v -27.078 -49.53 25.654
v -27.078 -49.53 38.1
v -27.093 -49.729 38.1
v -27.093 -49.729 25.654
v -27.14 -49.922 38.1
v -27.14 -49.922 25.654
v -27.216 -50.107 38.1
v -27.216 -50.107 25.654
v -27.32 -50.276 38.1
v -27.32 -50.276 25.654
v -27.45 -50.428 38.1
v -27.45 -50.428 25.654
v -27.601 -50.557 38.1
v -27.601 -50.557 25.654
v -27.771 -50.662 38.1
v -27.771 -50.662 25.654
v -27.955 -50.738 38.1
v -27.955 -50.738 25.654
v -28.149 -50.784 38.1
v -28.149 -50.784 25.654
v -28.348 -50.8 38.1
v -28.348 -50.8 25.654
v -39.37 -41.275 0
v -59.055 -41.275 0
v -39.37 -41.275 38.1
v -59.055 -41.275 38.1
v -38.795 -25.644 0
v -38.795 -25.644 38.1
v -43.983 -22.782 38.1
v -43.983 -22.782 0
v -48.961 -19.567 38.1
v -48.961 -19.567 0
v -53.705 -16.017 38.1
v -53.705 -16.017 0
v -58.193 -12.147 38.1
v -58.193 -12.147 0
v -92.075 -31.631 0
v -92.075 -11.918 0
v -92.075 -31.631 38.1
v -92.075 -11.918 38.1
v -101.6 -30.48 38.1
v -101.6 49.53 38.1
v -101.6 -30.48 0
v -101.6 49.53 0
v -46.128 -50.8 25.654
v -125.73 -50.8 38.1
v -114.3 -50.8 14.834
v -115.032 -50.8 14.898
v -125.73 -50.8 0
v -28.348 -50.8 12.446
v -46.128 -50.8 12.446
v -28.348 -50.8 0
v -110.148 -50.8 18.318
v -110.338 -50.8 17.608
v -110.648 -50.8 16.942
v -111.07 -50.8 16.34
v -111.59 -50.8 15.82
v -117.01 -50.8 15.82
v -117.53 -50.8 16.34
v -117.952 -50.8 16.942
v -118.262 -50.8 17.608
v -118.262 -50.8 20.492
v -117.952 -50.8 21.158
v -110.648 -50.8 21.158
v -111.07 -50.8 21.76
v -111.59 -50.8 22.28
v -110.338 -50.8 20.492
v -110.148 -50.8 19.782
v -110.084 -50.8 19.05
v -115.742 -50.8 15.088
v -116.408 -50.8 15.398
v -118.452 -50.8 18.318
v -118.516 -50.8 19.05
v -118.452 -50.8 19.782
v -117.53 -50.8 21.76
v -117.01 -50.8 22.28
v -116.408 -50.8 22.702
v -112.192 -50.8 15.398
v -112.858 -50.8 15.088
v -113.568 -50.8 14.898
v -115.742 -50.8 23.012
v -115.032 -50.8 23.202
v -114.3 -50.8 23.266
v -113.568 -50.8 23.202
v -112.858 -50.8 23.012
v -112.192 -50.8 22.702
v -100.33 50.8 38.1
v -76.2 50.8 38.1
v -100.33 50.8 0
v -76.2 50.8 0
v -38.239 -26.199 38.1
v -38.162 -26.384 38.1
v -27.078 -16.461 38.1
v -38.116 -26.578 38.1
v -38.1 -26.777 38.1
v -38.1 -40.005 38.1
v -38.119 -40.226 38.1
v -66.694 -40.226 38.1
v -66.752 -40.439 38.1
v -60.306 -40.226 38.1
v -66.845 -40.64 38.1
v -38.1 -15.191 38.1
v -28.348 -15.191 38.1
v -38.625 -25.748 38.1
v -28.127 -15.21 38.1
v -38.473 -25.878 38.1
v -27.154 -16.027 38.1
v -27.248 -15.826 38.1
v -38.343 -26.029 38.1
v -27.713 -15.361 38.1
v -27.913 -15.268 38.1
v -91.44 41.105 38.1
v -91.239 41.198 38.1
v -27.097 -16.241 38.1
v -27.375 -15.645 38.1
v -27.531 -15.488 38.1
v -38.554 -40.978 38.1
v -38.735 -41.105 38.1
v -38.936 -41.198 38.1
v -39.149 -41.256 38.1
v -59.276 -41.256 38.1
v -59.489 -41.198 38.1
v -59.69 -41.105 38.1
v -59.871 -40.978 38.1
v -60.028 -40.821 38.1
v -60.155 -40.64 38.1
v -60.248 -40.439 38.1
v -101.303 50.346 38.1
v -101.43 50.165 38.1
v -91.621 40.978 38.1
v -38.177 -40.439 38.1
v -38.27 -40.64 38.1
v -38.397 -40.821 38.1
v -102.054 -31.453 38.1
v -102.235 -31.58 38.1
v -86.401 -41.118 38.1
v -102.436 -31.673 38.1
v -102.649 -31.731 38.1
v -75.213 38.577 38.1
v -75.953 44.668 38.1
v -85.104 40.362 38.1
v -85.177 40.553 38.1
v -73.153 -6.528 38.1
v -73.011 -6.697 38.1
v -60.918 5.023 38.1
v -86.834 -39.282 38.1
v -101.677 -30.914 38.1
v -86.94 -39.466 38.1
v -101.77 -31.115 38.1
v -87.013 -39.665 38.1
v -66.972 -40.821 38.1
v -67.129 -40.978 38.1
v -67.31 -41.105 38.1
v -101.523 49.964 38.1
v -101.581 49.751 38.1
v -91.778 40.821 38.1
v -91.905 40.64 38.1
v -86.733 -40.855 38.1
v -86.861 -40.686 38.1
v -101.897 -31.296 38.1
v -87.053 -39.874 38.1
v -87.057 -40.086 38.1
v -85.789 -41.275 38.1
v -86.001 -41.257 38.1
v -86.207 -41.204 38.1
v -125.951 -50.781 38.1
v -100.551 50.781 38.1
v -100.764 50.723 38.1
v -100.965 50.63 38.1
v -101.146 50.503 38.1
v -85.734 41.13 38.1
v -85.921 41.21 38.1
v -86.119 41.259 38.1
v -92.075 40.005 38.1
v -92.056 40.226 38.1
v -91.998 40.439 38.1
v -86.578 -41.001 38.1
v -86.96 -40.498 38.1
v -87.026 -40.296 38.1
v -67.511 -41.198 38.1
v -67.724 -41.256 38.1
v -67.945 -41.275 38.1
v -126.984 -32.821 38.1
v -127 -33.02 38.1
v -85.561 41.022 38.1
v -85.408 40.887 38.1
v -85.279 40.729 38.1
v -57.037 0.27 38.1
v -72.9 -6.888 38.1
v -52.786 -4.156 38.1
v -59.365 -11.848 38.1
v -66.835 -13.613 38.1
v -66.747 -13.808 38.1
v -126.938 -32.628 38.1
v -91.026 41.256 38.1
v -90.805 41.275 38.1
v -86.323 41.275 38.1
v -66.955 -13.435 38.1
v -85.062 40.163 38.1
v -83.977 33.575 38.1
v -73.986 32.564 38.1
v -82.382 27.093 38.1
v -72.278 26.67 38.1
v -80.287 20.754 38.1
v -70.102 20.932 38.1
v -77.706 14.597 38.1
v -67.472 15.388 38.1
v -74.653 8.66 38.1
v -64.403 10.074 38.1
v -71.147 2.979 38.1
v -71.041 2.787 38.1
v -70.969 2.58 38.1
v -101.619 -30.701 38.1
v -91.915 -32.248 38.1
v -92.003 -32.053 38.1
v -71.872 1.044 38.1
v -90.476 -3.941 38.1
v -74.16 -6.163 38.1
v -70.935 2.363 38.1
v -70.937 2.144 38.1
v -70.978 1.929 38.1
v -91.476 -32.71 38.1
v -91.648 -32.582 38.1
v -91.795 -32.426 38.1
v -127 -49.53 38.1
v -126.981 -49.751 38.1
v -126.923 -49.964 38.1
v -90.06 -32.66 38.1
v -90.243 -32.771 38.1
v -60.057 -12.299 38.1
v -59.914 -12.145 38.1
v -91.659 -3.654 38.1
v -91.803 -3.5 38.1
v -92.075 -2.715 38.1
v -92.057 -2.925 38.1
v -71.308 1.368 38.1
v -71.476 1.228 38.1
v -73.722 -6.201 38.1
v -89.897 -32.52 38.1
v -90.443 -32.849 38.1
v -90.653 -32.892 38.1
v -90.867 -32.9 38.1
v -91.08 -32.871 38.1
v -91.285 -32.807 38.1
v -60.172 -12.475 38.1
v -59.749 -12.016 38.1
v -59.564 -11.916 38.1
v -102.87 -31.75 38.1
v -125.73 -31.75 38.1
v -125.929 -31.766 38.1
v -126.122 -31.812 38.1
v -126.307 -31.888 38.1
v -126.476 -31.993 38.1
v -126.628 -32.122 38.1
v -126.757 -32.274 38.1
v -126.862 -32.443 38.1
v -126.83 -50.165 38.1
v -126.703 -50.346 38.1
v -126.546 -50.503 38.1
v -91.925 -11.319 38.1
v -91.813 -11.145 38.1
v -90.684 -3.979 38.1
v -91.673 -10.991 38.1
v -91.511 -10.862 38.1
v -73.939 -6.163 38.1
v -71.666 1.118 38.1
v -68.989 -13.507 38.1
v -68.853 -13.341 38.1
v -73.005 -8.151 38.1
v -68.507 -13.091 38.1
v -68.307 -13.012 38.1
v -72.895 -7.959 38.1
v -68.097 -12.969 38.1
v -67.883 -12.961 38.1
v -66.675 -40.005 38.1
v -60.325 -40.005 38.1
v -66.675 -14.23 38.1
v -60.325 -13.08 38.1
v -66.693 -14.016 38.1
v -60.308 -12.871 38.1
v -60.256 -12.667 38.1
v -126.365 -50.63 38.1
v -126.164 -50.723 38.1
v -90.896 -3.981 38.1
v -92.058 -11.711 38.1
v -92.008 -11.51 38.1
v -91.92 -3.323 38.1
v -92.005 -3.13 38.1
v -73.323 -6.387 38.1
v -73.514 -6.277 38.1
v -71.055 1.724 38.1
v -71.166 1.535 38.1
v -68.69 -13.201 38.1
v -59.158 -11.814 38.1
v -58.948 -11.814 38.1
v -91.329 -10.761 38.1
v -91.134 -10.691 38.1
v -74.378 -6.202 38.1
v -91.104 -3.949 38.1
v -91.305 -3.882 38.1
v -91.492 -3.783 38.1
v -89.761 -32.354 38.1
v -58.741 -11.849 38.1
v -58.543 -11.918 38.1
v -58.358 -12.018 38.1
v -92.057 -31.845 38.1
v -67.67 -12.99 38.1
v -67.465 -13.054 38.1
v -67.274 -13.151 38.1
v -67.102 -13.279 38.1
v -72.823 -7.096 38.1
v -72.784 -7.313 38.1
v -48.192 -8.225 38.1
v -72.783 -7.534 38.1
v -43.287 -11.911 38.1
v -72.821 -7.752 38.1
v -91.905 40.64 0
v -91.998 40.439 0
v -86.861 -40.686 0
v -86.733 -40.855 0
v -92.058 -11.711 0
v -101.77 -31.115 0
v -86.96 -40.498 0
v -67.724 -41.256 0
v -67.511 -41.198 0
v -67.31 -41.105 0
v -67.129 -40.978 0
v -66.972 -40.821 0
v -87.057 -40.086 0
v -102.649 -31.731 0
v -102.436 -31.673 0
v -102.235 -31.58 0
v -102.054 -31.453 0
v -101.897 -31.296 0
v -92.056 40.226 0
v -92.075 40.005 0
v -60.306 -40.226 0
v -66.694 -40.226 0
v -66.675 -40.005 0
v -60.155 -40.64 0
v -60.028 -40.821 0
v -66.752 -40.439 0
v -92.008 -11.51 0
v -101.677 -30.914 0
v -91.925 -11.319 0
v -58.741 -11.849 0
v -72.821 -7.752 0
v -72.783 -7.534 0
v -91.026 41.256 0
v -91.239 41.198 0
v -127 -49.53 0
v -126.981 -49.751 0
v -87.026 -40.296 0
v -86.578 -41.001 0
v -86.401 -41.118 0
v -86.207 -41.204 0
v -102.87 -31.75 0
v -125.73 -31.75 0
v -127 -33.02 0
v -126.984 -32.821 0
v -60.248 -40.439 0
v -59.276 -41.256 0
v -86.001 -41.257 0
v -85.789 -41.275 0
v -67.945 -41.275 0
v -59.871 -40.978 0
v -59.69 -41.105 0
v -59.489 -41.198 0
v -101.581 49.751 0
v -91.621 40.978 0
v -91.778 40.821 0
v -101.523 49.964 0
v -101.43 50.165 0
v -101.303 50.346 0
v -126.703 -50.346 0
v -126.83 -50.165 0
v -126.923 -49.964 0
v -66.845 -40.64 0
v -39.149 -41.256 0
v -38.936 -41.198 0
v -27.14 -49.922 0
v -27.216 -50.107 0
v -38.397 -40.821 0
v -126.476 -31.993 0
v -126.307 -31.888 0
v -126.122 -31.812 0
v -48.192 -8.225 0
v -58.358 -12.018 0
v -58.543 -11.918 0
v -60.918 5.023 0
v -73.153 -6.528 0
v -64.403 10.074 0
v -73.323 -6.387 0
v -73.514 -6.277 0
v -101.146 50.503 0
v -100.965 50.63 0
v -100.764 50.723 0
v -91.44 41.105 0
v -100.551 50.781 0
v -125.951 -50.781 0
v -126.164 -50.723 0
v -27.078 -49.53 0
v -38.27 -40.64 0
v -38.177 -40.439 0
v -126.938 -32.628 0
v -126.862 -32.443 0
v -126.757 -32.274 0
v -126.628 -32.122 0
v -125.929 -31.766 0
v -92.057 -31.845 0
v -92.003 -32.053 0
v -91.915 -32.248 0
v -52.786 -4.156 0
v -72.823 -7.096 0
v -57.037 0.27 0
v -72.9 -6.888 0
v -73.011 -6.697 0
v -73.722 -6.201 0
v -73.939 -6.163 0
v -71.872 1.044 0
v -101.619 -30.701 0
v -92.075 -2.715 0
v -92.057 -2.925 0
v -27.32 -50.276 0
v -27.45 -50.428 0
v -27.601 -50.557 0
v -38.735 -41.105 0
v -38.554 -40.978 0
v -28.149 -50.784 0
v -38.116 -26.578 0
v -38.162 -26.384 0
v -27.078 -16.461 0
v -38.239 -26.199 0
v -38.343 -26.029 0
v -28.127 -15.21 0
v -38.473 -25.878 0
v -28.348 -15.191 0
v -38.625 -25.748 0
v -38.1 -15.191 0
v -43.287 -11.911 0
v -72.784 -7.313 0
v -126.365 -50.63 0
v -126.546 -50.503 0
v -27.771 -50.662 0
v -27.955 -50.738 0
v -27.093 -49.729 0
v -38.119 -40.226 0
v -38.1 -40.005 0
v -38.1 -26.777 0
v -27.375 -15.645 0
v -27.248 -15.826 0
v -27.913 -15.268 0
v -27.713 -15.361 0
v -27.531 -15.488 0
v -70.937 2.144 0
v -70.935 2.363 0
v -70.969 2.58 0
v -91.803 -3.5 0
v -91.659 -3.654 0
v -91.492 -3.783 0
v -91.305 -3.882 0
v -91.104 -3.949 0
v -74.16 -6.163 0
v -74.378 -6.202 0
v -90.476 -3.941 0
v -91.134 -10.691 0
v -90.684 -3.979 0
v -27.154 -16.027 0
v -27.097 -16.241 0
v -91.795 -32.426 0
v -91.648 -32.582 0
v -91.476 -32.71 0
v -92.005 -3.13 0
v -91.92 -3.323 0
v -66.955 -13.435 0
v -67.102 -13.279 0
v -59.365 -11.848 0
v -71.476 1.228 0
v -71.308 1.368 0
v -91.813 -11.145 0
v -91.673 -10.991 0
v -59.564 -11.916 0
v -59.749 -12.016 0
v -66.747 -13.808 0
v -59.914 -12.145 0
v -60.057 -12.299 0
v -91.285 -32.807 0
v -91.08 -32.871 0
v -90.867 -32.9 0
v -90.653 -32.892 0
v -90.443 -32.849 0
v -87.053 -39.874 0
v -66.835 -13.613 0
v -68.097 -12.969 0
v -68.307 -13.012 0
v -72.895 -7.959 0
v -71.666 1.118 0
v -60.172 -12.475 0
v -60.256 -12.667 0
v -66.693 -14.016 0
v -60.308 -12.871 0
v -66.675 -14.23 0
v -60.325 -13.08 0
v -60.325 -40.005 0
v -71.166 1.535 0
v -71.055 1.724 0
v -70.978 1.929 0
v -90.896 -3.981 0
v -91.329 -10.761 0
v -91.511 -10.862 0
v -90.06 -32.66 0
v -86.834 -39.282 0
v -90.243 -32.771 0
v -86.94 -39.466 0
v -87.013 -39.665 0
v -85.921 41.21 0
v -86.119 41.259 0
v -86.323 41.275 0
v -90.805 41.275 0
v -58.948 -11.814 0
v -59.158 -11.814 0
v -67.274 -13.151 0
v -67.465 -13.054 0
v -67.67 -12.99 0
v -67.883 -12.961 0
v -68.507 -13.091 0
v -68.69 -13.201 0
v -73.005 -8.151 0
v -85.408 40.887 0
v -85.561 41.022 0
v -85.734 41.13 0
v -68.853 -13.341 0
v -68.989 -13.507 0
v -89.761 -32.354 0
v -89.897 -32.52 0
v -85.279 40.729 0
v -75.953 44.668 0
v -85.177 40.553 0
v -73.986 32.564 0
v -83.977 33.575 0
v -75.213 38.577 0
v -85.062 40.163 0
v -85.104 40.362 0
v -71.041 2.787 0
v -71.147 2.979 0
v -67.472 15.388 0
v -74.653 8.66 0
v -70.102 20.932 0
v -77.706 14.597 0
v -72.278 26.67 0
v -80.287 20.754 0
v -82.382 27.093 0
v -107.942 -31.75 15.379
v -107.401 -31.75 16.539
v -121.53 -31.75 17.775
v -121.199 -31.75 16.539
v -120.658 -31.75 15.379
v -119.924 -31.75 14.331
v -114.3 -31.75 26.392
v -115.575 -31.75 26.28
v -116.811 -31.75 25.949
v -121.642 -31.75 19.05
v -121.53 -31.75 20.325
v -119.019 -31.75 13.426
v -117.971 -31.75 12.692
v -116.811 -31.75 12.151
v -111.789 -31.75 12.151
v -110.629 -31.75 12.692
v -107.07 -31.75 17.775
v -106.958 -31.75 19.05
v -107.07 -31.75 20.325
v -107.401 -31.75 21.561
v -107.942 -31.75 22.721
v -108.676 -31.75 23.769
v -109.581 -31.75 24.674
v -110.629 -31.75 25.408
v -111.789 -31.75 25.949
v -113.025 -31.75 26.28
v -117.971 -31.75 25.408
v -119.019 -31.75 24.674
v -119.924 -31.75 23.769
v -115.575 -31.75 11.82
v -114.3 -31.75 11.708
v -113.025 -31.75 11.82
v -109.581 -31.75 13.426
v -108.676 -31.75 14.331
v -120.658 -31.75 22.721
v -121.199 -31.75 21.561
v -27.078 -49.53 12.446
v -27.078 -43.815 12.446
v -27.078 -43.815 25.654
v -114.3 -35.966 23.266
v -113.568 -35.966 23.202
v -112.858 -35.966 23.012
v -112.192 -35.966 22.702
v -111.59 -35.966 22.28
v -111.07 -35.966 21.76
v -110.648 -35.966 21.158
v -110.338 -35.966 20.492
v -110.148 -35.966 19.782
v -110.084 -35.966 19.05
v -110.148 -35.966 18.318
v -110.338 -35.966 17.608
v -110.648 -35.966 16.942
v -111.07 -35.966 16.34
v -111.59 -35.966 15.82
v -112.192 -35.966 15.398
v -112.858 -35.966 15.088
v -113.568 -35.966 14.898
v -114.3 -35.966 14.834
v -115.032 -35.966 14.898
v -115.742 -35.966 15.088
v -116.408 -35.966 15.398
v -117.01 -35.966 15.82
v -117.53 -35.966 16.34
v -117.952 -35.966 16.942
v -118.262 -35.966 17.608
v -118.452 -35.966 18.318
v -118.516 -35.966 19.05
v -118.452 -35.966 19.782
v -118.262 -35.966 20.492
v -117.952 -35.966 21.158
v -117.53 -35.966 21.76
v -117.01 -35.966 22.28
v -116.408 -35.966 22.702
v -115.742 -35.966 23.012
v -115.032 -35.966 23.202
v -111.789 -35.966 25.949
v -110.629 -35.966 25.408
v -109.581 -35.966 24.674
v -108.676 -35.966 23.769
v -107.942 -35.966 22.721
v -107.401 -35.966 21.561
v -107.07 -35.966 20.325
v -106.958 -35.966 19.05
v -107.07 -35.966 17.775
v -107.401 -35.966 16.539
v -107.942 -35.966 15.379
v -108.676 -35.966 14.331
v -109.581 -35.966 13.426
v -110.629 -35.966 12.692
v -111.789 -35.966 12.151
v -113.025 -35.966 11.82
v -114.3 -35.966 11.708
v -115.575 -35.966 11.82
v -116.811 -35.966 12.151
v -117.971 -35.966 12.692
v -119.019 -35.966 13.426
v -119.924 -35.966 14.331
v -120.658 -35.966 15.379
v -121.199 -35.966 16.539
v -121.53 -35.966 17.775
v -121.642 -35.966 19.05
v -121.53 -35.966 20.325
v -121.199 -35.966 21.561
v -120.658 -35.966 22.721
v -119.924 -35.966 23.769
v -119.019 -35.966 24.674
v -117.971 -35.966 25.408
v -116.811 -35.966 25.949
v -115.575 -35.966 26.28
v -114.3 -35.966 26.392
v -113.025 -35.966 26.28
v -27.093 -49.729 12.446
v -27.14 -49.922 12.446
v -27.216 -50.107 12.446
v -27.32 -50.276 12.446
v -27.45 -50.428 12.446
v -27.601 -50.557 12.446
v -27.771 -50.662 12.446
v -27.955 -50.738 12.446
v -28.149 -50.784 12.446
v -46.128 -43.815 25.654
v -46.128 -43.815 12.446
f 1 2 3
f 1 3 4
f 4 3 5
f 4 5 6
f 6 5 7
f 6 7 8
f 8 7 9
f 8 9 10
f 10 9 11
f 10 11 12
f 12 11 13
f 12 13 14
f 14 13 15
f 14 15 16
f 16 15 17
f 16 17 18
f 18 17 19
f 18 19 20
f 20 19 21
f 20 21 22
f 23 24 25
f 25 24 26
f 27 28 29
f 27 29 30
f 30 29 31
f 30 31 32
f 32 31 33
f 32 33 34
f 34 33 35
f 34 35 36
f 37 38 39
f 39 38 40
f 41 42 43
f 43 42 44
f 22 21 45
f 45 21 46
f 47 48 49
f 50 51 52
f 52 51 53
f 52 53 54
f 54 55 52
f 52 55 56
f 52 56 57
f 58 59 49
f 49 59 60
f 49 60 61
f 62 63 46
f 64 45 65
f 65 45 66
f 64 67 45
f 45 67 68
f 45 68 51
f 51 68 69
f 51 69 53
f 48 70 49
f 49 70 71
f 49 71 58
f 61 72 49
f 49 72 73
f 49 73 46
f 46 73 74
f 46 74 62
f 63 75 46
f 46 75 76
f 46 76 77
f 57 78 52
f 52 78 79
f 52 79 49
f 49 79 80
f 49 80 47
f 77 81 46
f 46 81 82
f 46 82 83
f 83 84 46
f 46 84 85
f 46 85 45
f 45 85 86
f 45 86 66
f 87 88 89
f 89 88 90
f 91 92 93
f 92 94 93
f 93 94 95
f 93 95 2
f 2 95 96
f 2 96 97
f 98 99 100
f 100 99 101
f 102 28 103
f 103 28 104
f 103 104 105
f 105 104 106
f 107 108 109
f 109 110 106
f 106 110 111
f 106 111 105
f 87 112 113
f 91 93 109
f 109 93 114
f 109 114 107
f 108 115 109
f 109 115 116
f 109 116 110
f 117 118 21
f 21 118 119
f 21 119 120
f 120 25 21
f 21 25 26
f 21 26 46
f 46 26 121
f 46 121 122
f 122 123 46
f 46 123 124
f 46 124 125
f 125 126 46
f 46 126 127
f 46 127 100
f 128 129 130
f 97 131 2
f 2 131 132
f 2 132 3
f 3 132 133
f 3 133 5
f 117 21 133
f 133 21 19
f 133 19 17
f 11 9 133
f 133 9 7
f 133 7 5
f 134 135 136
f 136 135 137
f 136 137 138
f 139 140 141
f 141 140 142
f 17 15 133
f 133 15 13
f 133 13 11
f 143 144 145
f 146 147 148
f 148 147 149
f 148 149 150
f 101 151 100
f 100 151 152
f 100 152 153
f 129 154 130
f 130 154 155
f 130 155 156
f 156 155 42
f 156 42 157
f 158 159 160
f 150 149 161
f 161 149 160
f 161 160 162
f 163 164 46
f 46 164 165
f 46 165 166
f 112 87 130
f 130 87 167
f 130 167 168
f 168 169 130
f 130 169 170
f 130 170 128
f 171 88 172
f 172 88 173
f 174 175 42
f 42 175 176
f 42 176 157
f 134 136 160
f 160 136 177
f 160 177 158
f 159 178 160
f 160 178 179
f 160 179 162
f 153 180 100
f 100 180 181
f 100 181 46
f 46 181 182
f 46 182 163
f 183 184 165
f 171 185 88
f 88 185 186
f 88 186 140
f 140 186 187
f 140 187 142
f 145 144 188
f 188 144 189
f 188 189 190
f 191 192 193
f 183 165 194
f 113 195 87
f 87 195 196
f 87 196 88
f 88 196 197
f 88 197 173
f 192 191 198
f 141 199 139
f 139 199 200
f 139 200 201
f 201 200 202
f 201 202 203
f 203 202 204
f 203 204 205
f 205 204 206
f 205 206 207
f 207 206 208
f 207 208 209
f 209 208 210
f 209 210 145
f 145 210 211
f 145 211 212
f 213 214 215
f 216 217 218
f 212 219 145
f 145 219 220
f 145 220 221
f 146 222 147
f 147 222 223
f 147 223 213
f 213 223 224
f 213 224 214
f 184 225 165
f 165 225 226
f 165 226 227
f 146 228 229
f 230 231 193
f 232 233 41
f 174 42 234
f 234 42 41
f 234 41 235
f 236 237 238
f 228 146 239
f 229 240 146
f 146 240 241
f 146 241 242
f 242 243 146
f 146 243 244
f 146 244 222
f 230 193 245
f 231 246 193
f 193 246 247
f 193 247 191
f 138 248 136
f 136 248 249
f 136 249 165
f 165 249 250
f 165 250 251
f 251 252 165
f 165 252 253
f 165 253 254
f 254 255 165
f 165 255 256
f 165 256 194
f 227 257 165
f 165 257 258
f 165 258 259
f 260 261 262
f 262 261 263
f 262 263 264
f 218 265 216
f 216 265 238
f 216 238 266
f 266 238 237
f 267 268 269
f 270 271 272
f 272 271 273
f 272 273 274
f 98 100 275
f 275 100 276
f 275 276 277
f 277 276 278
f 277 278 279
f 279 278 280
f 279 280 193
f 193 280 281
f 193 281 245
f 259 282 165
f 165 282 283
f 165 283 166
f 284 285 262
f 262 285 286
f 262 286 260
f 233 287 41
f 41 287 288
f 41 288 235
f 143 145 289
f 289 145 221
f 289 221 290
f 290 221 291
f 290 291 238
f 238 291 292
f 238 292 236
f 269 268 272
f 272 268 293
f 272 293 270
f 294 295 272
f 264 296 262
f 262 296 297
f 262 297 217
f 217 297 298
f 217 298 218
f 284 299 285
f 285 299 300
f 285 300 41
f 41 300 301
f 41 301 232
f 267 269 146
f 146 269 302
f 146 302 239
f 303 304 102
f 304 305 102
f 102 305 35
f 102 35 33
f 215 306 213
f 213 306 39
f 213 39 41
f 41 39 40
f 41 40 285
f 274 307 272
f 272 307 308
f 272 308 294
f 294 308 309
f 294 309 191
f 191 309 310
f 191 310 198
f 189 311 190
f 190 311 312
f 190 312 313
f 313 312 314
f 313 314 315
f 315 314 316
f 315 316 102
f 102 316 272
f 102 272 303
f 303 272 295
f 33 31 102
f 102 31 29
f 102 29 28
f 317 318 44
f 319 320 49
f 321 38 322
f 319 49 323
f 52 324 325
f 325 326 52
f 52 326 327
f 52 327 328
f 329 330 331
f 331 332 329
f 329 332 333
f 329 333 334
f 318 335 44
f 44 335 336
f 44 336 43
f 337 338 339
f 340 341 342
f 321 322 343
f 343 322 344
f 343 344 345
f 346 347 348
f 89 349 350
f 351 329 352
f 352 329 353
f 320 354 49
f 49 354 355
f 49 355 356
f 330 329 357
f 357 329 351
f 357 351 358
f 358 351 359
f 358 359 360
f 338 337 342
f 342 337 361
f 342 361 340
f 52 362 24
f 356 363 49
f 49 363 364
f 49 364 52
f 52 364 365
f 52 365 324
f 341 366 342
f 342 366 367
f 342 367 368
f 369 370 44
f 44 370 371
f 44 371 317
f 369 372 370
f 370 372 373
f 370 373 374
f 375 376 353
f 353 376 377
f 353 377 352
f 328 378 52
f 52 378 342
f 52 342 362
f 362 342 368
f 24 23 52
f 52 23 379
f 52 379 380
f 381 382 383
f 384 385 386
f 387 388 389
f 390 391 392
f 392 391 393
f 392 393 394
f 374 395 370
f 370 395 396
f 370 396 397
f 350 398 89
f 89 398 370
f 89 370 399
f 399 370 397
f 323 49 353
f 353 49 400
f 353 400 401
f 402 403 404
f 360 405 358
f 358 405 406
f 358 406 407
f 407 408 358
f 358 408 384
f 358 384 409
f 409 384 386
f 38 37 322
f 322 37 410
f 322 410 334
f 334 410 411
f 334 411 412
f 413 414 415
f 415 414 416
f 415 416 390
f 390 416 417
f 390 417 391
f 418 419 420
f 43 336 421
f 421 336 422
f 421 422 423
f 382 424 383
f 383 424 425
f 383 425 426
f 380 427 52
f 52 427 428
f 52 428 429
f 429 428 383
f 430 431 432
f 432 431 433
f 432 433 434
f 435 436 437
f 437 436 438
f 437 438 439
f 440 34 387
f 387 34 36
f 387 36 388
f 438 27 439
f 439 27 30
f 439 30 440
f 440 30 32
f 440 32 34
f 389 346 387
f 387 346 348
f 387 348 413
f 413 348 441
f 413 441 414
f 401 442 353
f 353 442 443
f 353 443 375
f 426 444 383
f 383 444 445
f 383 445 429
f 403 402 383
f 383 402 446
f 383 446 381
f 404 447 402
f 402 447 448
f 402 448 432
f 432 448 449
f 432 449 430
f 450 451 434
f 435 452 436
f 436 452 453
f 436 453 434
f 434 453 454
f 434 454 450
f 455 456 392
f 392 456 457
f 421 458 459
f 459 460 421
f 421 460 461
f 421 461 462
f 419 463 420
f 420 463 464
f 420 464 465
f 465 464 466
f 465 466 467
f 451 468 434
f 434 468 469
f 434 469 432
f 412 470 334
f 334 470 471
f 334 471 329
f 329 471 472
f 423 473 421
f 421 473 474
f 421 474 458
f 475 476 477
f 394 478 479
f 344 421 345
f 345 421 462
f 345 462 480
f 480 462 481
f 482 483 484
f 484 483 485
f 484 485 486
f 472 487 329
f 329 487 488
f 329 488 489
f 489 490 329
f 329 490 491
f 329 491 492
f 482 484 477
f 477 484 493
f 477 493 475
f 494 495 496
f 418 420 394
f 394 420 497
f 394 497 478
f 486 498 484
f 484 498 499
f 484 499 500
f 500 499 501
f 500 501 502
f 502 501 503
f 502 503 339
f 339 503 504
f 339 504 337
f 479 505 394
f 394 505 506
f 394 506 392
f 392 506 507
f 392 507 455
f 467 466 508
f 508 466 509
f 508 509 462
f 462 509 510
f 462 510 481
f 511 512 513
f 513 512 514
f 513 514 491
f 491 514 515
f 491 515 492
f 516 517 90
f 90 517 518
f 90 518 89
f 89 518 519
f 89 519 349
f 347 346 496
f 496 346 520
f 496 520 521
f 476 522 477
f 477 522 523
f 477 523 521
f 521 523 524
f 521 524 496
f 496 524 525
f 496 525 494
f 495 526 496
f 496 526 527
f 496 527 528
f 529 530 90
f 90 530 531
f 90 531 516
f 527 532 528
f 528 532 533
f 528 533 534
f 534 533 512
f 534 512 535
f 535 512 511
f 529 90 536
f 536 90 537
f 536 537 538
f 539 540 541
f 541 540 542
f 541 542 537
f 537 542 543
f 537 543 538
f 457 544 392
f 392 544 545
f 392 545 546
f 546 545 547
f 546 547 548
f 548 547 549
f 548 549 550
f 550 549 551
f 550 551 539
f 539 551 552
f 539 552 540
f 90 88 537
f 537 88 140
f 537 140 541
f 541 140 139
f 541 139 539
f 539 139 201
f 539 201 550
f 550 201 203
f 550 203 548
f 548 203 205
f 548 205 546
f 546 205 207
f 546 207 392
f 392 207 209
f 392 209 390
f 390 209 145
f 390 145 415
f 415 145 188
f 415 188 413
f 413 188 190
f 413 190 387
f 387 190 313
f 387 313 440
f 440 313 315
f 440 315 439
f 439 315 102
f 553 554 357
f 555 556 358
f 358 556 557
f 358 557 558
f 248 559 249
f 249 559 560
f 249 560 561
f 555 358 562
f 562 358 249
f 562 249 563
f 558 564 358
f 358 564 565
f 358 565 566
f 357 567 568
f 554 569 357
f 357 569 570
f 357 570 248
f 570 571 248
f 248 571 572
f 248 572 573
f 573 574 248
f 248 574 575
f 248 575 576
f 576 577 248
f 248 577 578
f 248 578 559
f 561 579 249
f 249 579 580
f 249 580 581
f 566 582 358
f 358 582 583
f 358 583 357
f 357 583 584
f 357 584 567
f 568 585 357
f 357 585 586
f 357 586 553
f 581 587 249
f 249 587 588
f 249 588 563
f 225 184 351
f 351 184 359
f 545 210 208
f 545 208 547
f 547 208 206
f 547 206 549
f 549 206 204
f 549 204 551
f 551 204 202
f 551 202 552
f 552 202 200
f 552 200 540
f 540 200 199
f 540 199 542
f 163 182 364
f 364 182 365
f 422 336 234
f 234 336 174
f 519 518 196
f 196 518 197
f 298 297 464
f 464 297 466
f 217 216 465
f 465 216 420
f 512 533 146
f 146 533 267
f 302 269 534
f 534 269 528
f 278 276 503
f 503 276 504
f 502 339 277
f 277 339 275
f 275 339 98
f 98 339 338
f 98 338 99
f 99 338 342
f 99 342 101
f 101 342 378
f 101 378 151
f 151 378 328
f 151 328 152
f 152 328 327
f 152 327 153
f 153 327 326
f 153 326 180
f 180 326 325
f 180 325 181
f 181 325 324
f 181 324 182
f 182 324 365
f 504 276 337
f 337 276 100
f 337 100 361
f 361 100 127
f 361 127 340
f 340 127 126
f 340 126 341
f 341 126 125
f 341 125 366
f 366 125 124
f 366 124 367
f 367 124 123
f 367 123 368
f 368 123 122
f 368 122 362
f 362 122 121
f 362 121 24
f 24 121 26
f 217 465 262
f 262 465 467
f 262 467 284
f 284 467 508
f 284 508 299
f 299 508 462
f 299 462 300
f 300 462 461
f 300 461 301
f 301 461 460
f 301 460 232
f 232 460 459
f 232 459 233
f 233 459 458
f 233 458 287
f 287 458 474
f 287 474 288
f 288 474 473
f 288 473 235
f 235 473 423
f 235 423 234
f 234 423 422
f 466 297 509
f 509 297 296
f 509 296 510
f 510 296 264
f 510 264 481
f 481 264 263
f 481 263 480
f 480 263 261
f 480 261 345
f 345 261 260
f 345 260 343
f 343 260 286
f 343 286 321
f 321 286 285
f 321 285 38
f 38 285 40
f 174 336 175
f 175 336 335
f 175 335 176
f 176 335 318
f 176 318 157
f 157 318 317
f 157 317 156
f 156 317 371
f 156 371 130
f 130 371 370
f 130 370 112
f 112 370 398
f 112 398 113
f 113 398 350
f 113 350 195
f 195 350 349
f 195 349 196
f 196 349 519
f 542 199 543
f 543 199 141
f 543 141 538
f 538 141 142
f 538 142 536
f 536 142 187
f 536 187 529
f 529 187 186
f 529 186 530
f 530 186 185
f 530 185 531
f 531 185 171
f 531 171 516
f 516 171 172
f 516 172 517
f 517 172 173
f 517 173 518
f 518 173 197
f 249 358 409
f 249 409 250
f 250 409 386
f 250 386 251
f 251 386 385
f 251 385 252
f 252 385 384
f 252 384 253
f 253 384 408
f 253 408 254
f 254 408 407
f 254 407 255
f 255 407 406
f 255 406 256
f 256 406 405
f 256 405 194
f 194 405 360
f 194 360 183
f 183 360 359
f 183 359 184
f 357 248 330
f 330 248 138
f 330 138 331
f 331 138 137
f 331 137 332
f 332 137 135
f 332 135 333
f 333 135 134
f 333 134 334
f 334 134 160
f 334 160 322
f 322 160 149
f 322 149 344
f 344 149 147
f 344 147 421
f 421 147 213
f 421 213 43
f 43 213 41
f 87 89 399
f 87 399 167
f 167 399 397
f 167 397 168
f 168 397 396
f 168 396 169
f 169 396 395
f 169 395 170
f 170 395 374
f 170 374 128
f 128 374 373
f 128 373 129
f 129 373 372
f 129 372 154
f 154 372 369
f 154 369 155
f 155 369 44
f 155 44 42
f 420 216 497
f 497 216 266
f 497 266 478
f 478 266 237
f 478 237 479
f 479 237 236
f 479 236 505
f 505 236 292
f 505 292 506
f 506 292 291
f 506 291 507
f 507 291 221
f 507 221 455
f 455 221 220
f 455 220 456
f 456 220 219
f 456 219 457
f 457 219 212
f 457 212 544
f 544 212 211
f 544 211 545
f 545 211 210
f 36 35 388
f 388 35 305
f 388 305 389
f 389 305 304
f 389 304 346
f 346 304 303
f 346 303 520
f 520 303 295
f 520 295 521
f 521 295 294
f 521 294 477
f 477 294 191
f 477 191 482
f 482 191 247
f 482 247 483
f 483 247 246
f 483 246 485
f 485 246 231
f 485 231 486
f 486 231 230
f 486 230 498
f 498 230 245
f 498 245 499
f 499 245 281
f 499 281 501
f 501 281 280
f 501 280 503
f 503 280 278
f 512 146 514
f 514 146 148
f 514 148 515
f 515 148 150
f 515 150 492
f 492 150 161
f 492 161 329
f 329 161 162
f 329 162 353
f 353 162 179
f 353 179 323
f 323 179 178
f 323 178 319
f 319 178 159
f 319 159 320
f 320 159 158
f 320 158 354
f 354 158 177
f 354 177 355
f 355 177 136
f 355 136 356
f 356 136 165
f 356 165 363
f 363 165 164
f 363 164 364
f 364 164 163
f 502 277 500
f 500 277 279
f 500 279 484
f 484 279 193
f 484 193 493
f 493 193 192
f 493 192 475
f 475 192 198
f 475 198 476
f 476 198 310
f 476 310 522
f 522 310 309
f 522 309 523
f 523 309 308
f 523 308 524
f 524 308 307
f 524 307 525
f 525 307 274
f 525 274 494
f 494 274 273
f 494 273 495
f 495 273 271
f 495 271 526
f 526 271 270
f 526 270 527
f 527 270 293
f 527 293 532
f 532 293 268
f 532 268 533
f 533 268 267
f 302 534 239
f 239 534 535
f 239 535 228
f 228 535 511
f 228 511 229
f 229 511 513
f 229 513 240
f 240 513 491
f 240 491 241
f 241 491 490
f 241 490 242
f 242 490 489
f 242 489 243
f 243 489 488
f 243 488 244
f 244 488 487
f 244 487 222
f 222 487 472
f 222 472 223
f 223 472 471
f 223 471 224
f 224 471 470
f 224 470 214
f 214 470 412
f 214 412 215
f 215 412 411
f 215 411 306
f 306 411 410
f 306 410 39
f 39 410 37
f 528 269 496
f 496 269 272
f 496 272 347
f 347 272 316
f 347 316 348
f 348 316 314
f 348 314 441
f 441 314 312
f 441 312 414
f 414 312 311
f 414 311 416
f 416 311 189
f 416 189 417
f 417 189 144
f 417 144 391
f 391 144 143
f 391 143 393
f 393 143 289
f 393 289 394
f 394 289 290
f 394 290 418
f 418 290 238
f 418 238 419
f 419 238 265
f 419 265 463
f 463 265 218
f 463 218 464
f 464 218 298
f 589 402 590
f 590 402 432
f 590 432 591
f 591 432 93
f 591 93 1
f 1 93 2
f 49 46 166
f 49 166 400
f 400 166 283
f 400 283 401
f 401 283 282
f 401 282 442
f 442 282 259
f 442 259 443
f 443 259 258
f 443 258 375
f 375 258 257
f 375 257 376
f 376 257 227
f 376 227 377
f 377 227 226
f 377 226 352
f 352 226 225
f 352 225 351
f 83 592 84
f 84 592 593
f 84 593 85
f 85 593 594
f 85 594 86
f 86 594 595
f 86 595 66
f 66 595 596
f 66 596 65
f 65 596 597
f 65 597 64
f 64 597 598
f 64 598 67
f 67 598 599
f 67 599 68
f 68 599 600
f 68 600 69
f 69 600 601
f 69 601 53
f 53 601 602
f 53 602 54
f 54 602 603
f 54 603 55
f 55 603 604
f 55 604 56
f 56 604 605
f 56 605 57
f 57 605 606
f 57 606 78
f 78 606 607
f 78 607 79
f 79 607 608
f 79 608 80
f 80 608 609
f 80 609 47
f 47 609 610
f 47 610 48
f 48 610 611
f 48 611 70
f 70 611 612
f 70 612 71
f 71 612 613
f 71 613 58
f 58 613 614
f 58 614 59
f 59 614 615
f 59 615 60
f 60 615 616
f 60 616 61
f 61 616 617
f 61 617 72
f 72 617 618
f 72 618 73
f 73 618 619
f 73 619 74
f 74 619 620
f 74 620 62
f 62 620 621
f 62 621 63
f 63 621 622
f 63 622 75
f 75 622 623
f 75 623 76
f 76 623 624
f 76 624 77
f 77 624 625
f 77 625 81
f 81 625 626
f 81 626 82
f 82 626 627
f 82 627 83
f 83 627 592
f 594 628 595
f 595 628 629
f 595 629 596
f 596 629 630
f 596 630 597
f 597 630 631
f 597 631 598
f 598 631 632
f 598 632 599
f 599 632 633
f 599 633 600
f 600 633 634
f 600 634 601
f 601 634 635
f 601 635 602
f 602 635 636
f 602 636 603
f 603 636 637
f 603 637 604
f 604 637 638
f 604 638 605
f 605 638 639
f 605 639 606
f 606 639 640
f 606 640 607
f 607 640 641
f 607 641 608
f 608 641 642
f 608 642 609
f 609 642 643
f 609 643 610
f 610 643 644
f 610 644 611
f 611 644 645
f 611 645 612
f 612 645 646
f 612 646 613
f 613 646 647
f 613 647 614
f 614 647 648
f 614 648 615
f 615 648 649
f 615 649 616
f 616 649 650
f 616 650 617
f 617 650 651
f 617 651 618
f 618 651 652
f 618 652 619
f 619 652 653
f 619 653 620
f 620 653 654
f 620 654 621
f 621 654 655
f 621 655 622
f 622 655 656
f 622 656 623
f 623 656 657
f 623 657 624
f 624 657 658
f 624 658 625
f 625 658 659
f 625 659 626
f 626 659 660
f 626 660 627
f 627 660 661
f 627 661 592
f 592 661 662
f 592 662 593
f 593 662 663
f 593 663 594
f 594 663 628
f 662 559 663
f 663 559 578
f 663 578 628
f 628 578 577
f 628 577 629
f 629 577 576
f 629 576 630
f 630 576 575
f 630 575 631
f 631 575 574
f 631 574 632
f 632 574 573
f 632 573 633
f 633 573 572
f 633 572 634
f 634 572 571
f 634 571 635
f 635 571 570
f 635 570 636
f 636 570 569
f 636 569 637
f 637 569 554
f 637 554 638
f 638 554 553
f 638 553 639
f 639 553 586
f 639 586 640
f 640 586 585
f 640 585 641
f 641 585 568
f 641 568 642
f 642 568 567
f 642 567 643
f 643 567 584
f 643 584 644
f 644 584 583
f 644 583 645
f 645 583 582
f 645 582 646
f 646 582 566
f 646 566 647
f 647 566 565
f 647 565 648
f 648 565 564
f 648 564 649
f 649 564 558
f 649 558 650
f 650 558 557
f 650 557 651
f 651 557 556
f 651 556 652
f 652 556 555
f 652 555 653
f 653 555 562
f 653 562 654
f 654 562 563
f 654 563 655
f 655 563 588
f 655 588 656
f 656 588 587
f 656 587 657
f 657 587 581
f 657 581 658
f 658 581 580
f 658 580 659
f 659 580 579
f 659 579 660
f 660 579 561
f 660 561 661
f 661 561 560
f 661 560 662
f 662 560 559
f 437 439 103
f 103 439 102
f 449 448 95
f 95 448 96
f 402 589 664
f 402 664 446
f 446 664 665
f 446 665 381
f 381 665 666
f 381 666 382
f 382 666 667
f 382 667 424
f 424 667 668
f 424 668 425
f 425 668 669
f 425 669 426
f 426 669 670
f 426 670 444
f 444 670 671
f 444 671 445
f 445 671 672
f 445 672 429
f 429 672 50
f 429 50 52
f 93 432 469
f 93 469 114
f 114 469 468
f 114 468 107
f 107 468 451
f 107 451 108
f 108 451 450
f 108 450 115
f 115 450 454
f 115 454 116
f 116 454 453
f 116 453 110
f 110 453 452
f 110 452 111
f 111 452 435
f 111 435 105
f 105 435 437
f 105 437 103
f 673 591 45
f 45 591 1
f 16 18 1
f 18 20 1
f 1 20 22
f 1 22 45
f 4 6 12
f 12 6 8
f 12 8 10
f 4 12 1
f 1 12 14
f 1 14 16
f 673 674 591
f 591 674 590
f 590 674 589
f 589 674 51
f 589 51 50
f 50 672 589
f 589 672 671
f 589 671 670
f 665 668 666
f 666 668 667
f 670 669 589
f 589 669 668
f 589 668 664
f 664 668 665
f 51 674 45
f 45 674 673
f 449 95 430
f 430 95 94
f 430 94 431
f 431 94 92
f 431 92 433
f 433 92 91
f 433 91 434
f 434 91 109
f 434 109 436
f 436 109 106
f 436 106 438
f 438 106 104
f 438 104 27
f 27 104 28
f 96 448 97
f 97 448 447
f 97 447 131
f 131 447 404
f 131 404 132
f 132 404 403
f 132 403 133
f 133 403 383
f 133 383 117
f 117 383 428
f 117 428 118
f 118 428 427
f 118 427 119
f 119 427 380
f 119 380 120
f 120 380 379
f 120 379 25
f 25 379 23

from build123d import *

# Parameters (mm, degrees)
SKETCH1_W                                         = 203.2
SKETCH1_H                                         = 101.6
BOSS_EXTRUDE1_DEPTH                               = 38.1
SKETCH2_R                                         = 76.2
CUT_EXTRUDE1_DEPTH                                = 120.811560377
SKETCH3_W                                         = 38.1
SKETCH3_H                                         = 19.05
BOSS_EXTRUDE2_DEPTH                               = 25.4
CUT_EXTRUDE2_DEPTH                                = 142.990316571
BOSS_EXTRUDE3_DEPTH                               = 38.1
BOSS_EXTRUDE4_DEPTH                               = 38.1
BOSS_EXTRUDE5_DEPTH                               = 38.1
FILLET1_R                                         = 1.27
FILLET2_R                                         = 1.27
SKETCH8_W                                         = 177.8
SKETCH8_H                                         = 152.4
CUT_EXTRUDE4_DEPTH                                = 142.990316571
FILLET3_R                                         = 1.27
CBORE_FOR_5_16_BUTTON_HEAD_CAP_SCREW1_D           = 8.4328
CBORE_FOR_5_16_BUTTON_HEAD_CAP_SCREW1_CBORE_D     = 14.68374
CBORE_FOR_5_16_BUTTON_HEAD_CAP_SCREW1_CBORE_DEPTH = 4.2164
SKETCH11_W                                        = 11.022458007
SKETCH11_H                                        = 35.608864266
BOSS_EXTRUDE6_DEPTH                               = 38.1
FILLET4_R                                         = 1.27
SKETCH15_W                                        = 13.208
SKETCH15_H                                        = 6.985
CUT_EXTRUDE6_DEPTH                                = 19.05
FILLET5_R                                         = 1.27


with BuildPart() as part:
    # Sketch1 → Boss-Extrude1 (new body)
    with BuildSketch(Plane.XY):
        Rectangle(SKETCH1_W, SKETCH1_H)
    extrude(amount=BOSS_EXTRUDE1_DEPTH)

    # Sketch2 → Cut-Extrude1 (cut, through all)
    with BuildSketch(Plane.XY.offset(38.1)):
        with Locations((0, 50.8)):
            Circle(SKETCH2_R)
    extrude(amount=-CUT_EXTRUDE1_DEPTH, mode=Mode.SUBTRACT)

    # Sketch3 → Boss-Extrude2 (add)
    with BuildSketch(Plane.ZY.offset(101.6)):
        with Locations((19.05, -41.275)):
            Rectangle(SKETCH3_W, SKETCH3_H)
    extrude(amount=BOSS_EXTRUDE2_DEPTH)

    # Sketch4 → Cut-Extrude2 (cut, through all)
    with BuildSketch(Plane.XY.offset(38.1)):
        with BuildLine():
            Line((-85.194189943, 41.275), (-92.075, 41.275))
            Line((-92.075, 41.275), (-92.075, -41.275))
            Line((-92.075, -41.275), (-36.602542053, -41.275))
            Line((-36.602542053, -41.275), (-36.602542053, -26.717930443))
            ThreePointArc((-36.602542053, -26.717930443), (-69.745040174, 0.956194004), (-85.194189943, 41.275))
        make_face()
    extrude(amount=-CUT_EXTRUDE2_DEPTH, mode=Mode.SUBTRACT)

    # Sketch5 → Boss-Extrude3 (add)
    with BuildSketch(Plane.XY.offset(38.1)):
        with BuildLine():
            Line((-62.678249532, -3.066814498), (-97.060420113, -12.27948934))
            ThreePointArc((-97.060420113, -12.27948934), (-100.94898508, -10.03442531), (-98.70392105, -6.145860343))
            Line((-98.70392105, -6.145860343), (-64.321750468, 3.066814498))
            ThreePointArc((-64.321750468, 3.066814498), (-60.433185502, 0.821750468), (-62.678249532, -3.066814498))
        make_face()
    extrude(amount=-BOSS_EXTRUDE3_DEPTH)

    # Sketch6 → Boss-Extrude4 (add)
    with BuildSketch(Plane.XY.offset(38.1)):
        with BuildLine():
            Line((-60.889539792, -1.807241683), (-89.464539792, -43.082241683))
            ThreePointArc((-89.464539792, -43.082241683), (-93.882241683, -43.885460208), (-94.685460208, -39.467758317))
            Line((-94.685460208, -39.467758317), (-66.110460208, 1.807241683))
            ThreePointArc((-66.110460208, 1.807241683), (-61.692758317, 2.610460208), (-60.889539792, -1.807241683))
        make_face()
    extrude(amount=-BOSS_EXTRUDE4_DEPTH)

    # Sketch7 → Boss-Extrude5 (add)
    with BuildSketch(Plane.XY.offset(38.1)):
        with BuildLine():
            Line((-60.325, 0), (-60.325, -43.707479127))
            ThreePointArc((-60.325, -43.707479127), (-63.5, -46.882479127), (-66.675, -43.707479127))
            Line((-66.675, -43.707479127), (-66.675, 0))
            ThreePointArc((-66.675, 0), (-63.5, 3.175), (-60.325, 0))
        make_face()
    extrude(amount=-BOSS_EXTRUDE5_DEPTH)

    # Fillet1
    fillet1_edges = [part.edges().sort_by_distance(p)[0] for p in [
        (-60.325, -41.275, 19.05),
        (-66.675, -41.275, 19.05),
        (-101.6, -31.75, 19.05),
        (-127, -31.75, 19.05),
        (-85.194189943, 41.275, 19.05),
        (-36.602542053, -26.717930443, 19.05),
        (-92.075, 41.275, 19.05),
        (-92.075, -4.369646301, 19.05),
        (-92.075, -10.943650047, 19.05),
        (-70.136622156, 1.508724326, 19.05),
        (-101.6, 50.8, 19.05),
    ]]
    fillet(fillet1_edges, radius=FILLET1_R)

    # Fillet2
    fillet2_edges = [part.edges().sort_by_distance(p)[0] for p in [
        (-92.075, -35.697093572, 19.05),
        (-66.675, -10.164017539, 19.05),
        (-60.325, -10.107060346, 19.05),
        (-71.03501409, -5.306002813, 19.05),
        (-88.213372473, -41.275, 19.05),
    ]]
    fillet(fillet2_edges, radius=FILLET2_R)

    # Sketch8 → Cut-Extrude4 (cut, through all)
    with BuildSketch(Plane.XY.offset(38.1)):
        with Locations((61.822457947, 25.4)):
            Rectangle(SKETCH8_W, SKETCH8_H)
    extrude(amount=-CUT_EXTRUDE4_DEPTH, mode=Mode.SUBTRACT)

    # Fillet3
    fillet3_edges = [part.edges().sort_by_distance(p)[0] for p in [
        (-127, -50.8, 19.05),
        (-27.077542053, -20.426727542, 19.05),
        (-27.077542053, -50.8, 19.05),
        (-36.602542053, -41.275, 19.05),
    ]]
    fillet(fillet3_edges, radius=FILLET3_R)

    # CBORE for 5/16 Button Head Cap Screw1 (through all)
    with Locations(Plane(origin=(0, -31.75, 0), x_dir=(1, 0, 0), z_dir=(0, 1, 0))):
        with Locations((-114.3, -19.05)):
            CounterBoreHole(CBORE_FOR_5_16_BUTTON_HEAD_CAP_SCREW1_D / 2, CBORE_FOR_5_16_BUTTON_HEAD_CAP_SCREW1_CBORE_D / 2, CBORE_FOR_5_16_BUTTON_HEAD_CAP_SCREW1_CBORE_DEPTH)

    # Sketch11 → Boss-Extrude6 (add)
    with BuildSketch(Plane.XY.offset(38.1)):
        with Locations((-32.588771057, -32.995567867)):
            Rectangle(SKETCH11_W, SKETCH11_H)
    extrude(amount=-BOSS_EXTRUDE6_DEPTH)

    # Fillet4
    fillet4_edges = [part.edges().sort_by_distance(p)[0] for p in [
        (-27.077542053, -15.191135734, 19.05),
        (-27.077542053, -50.8, 19.05),
    ]]
    fillet(fillet4_edges, radius=FILLET4_R)

    # Sketch15 → Cut-Extrude6 (cut)
    with BuildSketch(Plane(origin=(-27.077542053, 0, 0), x_dir=(0, 0, -1), z_dir=(1, 0, 0))):
        with Locations((-19.05, -47.3075)):
            Rectangle(SKETCH15_W, SKETCH15_H)
    extrude(amount=-CUT_EXTRUDE6_DEPTH, mode=Mode.SUBTRACT)

    # Fillet5
    fillet5_edges = [part.edges().sort_by_distance(p)[0] for p in [
        (-38.10000006, -41.275, 19.05),
        (-38.10000006, -25.993005023, 19.05),
    ]]
    fillet(fillet5_edges, radius=FILLET5_R)


solid = part.part
